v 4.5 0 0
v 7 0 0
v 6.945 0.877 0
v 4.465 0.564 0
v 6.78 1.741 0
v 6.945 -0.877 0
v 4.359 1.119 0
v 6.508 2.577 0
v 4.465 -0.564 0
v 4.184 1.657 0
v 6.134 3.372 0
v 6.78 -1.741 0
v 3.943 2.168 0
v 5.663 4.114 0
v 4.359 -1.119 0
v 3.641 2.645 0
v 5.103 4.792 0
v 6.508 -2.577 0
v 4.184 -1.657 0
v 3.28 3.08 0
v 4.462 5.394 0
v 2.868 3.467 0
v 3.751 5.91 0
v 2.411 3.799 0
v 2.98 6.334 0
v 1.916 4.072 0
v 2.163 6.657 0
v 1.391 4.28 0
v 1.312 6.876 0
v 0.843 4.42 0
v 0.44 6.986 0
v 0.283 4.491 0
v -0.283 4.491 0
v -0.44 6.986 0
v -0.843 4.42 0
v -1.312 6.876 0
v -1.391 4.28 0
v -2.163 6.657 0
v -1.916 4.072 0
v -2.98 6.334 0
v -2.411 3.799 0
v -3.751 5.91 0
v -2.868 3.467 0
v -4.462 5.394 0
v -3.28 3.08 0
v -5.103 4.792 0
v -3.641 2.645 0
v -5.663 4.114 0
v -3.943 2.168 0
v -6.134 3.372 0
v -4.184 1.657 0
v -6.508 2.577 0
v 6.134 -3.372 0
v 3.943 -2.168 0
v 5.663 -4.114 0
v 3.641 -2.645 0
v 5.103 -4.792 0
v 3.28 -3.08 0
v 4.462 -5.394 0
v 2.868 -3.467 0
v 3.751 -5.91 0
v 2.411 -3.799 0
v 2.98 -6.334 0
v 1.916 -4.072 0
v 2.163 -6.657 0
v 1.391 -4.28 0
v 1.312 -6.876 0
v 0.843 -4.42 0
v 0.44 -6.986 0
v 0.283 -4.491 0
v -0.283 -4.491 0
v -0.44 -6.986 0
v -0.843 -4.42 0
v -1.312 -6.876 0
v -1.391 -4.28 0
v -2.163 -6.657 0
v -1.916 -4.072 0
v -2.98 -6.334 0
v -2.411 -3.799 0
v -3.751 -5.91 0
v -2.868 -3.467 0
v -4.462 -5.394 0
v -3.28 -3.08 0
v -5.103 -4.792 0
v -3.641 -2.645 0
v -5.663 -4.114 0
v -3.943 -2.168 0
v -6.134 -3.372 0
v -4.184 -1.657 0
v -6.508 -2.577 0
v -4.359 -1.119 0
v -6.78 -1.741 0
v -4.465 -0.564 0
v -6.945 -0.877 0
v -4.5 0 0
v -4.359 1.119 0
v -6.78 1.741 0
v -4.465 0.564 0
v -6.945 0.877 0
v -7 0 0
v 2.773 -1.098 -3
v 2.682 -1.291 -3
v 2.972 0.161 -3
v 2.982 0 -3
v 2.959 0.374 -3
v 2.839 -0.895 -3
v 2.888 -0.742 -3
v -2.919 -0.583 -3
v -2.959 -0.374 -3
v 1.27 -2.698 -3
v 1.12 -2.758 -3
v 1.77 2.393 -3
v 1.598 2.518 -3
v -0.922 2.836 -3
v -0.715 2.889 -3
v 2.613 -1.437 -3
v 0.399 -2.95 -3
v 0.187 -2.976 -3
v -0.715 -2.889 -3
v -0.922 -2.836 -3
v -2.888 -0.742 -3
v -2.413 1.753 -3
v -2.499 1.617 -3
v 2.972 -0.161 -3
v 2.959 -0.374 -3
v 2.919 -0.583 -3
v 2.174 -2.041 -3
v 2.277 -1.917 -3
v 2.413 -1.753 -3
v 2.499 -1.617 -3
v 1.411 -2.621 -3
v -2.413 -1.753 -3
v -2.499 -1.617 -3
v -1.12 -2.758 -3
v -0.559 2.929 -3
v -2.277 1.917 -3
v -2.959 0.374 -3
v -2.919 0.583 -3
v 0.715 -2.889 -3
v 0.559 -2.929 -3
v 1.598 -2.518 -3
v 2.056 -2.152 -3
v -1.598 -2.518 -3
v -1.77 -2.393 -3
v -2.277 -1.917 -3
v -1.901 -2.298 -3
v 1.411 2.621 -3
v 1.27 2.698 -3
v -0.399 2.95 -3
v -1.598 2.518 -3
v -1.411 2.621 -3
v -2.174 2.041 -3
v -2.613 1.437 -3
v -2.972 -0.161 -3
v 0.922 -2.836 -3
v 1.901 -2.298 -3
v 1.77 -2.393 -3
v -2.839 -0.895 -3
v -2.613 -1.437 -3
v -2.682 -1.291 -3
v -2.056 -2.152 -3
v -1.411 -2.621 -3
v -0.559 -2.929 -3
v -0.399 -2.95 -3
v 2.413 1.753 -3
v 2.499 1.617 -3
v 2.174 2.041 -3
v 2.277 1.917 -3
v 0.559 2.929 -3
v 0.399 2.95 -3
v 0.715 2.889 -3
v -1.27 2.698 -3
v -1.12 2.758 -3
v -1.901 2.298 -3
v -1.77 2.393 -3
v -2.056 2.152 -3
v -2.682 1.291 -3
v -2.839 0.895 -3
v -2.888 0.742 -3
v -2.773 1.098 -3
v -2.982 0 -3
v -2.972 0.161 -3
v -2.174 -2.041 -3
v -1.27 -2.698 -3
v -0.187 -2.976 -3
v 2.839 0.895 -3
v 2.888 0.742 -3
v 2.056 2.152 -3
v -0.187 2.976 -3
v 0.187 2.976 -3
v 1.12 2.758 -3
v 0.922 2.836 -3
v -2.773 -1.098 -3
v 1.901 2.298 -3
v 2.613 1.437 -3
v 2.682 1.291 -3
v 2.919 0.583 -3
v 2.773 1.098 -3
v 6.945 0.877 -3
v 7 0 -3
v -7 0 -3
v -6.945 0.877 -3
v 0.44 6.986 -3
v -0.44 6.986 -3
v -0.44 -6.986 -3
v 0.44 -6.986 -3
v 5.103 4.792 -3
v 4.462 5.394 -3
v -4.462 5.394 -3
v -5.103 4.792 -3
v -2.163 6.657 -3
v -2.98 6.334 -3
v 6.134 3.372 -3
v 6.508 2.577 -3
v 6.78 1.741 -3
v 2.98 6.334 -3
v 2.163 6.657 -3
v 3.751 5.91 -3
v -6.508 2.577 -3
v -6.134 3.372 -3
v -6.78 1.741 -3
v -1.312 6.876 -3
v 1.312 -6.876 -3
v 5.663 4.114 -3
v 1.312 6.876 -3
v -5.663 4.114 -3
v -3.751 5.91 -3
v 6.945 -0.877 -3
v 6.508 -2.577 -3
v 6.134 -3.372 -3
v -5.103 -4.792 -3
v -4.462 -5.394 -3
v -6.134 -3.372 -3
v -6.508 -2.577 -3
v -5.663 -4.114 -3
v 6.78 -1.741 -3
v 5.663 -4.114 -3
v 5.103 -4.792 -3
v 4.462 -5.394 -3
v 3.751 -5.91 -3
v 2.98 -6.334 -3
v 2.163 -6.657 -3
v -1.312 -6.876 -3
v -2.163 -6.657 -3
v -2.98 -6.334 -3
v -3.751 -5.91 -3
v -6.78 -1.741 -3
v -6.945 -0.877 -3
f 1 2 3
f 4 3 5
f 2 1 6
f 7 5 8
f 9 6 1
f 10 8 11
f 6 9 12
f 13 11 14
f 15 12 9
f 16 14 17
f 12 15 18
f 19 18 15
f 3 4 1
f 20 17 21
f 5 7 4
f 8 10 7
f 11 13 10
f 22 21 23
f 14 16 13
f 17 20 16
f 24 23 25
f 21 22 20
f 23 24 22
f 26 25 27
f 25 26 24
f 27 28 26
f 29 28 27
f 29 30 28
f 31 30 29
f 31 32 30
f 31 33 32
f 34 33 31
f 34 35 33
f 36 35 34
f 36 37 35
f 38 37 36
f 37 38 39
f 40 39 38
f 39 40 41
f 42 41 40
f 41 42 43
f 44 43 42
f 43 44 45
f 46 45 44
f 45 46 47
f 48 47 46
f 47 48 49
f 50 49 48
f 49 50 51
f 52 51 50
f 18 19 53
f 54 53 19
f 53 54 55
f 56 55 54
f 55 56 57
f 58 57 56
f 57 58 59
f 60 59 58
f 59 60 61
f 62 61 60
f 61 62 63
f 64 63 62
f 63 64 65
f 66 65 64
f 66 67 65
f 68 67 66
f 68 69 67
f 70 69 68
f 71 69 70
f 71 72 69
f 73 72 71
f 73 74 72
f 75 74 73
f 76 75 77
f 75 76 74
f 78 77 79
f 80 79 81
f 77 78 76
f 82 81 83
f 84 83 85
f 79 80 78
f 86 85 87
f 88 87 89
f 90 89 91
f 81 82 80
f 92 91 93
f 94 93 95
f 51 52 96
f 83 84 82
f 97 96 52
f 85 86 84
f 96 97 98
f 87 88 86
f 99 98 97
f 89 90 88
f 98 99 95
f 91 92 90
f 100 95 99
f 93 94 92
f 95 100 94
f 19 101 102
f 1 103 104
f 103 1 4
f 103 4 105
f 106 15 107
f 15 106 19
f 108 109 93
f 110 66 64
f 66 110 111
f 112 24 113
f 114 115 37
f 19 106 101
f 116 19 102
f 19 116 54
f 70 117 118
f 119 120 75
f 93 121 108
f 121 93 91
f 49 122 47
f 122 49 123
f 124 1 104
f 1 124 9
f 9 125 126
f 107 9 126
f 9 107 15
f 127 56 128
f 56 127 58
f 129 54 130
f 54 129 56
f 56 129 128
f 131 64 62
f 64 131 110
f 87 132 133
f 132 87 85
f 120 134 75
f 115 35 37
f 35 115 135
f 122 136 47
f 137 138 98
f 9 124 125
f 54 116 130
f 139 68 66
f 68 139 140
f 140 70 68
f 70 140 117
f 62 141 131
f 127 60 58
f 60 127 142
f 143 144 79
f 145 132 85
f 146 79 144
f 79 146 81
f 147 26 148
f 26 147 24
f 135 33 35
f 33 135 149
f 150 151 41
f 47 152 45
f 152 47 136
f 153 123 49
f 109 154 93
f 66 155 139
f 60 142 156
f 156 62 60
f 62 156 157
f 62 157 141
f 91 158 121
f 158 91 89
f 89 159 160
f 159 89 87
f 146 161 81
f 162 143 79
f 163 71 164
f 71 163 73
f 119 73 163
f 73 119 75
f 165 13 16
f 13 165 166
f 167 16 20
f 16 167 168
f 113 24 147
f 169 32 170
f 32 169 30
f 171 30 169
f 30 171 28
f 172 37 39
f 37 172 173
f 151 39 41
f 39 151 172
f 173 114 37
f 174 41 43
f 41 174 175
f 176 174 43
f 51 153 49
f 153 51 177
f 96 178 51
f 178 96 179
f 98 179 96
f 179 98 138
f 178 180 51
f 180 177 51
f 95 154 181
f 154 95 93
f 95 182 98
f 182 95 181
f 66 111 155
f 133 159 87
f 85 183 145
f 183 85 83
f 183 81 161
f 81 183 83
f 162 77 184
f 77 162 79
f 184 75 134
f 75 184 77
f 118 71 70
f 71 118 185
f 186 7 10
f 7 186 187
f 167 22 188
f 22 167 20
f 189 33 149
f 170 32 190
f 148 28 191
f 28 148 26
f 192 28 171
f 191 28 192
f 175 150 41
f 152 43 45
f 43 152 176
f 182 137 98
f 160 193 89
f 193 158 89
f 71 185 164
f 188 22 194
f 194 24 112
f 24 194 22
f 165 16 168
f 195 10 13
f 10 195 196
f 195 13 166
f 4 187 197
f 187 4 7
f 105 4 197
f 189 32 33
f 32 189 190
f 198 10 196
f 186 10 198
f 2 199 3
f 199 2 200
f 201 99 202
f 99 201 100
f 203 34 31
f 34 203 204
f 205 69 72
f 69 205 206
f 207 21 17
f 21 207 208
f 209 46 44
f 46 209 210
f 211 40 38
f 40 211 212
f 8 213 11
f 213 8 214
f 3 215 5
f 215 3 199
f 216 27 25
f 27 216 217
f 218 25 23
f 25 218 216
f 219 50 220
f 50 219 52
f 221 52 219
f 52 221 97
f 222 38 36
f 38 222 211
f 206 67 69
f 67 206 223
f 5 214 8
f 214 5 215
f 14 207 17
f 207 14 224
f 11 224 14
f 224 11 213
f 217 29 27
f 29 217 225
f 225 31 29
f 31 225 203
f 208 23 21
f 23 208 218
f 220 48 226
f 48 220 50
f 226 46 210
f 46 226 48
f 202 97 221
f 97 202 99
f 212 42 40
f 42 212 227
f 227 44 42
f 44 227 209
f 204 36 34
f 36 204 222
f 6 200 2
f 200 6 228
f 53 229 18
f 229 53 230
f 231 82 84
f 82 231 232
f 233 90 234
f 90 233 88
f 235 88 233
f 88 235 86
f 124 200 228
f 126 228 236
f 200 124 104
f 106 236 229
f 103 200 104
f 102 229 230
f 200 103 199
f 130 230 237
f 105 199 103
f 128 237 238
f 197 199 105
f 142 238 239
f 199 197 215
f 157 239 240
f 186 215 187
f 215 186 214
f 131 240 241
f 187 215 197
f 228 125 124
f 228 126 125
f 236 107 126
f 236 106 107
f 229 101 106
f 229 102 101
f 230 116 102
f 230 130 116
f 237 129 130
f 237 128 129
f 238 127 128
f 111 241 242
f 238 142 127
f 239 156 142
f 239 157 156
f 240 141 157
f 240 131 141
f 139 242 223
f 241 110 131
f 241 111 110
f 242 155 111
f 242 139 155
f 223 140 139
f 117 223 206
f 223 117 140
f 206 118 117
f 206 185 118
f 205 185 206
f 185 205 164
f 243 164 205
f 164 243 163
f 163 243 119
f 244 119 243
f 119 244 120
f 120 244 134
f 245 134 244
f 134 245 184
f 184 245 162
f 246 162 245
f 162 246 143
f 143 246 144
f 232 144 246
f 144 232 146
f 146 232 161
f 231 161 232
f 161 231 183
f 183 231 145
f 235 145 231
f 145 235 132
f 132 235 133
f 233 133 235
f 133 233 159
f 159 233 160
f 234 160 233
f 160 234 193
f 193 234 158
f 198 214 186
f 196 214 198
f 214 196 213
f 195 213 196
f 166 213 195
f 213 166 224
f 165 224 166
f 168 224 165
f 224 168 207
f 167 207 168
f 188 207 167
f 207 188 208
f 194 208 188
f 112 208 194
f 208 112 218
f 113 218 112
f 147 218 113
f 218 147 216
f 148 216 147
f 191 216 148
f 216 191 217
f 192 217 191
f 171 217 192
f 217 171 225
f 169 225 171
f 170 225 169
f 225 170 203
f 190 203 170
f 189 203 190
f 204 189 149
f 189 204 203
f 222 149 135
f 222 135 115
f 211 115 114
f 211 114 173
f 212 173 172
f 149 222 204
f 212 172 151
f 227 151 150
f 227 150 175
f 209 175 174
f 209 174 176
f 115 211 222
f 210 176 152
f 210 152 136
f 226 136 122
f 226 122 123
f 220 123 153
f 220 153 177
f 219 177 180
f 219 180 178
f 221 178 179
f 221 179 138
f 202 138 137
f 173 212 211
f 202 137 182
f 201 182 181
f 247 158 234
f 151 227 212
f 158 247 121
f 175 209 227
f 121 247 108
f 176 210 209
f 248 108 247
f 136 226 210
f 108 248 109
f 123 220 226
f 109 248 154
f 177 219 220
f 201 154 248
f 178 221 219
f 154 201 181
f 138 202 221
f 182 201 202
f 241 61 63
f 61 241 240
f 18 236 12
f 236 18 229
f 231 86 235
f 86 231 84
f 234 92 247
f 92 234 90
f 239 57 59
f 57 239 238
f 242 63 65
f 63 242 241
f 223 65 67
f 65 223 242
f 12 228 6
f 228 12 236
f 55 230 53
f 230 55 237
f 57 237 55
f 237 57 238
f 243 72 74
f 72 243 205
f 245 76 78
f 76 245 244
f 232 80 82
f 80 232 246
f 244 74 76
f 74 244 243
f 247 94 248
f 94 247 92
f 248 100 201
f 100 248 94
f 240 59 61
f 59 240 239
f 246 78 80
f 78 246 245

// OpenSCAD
$fn = 50;


difference() {
	union() {
		translate(v = [0, 0, -3.0000000000]) {
			cylinder(h = 3, r = 7.0000000000);
		}
		cylinder(h = 0, r = 16.0000000000);
	}
	union() {
		translate(v = [0, 0, 0]) {
			rotate(a = [0, 0, 0]) {
				difference() {
					union() {
						#translate(v = [0, 0, -3.0000000000]) {
							cylinder(h = 3, r = 2.2500000000);
						}
						#translate(v = [0, 0, -4.2000000000]) {
							cylinder(h = 4.2000000000, r = 7.0000000000, r1 = 2.3750000000, r2 = 4.5000000000);
						}
						#translate(v = [0, 0, -3.0000000000]) {
							cylinder(h = 3, r = 2.3750000000);
						}
						#translate(v = [0, 0, -3.0000000000]) {
							cylinder(h = 3, r = 2.2500000000);
						}
					}
					union();
				}
			}
		}
	}
}
